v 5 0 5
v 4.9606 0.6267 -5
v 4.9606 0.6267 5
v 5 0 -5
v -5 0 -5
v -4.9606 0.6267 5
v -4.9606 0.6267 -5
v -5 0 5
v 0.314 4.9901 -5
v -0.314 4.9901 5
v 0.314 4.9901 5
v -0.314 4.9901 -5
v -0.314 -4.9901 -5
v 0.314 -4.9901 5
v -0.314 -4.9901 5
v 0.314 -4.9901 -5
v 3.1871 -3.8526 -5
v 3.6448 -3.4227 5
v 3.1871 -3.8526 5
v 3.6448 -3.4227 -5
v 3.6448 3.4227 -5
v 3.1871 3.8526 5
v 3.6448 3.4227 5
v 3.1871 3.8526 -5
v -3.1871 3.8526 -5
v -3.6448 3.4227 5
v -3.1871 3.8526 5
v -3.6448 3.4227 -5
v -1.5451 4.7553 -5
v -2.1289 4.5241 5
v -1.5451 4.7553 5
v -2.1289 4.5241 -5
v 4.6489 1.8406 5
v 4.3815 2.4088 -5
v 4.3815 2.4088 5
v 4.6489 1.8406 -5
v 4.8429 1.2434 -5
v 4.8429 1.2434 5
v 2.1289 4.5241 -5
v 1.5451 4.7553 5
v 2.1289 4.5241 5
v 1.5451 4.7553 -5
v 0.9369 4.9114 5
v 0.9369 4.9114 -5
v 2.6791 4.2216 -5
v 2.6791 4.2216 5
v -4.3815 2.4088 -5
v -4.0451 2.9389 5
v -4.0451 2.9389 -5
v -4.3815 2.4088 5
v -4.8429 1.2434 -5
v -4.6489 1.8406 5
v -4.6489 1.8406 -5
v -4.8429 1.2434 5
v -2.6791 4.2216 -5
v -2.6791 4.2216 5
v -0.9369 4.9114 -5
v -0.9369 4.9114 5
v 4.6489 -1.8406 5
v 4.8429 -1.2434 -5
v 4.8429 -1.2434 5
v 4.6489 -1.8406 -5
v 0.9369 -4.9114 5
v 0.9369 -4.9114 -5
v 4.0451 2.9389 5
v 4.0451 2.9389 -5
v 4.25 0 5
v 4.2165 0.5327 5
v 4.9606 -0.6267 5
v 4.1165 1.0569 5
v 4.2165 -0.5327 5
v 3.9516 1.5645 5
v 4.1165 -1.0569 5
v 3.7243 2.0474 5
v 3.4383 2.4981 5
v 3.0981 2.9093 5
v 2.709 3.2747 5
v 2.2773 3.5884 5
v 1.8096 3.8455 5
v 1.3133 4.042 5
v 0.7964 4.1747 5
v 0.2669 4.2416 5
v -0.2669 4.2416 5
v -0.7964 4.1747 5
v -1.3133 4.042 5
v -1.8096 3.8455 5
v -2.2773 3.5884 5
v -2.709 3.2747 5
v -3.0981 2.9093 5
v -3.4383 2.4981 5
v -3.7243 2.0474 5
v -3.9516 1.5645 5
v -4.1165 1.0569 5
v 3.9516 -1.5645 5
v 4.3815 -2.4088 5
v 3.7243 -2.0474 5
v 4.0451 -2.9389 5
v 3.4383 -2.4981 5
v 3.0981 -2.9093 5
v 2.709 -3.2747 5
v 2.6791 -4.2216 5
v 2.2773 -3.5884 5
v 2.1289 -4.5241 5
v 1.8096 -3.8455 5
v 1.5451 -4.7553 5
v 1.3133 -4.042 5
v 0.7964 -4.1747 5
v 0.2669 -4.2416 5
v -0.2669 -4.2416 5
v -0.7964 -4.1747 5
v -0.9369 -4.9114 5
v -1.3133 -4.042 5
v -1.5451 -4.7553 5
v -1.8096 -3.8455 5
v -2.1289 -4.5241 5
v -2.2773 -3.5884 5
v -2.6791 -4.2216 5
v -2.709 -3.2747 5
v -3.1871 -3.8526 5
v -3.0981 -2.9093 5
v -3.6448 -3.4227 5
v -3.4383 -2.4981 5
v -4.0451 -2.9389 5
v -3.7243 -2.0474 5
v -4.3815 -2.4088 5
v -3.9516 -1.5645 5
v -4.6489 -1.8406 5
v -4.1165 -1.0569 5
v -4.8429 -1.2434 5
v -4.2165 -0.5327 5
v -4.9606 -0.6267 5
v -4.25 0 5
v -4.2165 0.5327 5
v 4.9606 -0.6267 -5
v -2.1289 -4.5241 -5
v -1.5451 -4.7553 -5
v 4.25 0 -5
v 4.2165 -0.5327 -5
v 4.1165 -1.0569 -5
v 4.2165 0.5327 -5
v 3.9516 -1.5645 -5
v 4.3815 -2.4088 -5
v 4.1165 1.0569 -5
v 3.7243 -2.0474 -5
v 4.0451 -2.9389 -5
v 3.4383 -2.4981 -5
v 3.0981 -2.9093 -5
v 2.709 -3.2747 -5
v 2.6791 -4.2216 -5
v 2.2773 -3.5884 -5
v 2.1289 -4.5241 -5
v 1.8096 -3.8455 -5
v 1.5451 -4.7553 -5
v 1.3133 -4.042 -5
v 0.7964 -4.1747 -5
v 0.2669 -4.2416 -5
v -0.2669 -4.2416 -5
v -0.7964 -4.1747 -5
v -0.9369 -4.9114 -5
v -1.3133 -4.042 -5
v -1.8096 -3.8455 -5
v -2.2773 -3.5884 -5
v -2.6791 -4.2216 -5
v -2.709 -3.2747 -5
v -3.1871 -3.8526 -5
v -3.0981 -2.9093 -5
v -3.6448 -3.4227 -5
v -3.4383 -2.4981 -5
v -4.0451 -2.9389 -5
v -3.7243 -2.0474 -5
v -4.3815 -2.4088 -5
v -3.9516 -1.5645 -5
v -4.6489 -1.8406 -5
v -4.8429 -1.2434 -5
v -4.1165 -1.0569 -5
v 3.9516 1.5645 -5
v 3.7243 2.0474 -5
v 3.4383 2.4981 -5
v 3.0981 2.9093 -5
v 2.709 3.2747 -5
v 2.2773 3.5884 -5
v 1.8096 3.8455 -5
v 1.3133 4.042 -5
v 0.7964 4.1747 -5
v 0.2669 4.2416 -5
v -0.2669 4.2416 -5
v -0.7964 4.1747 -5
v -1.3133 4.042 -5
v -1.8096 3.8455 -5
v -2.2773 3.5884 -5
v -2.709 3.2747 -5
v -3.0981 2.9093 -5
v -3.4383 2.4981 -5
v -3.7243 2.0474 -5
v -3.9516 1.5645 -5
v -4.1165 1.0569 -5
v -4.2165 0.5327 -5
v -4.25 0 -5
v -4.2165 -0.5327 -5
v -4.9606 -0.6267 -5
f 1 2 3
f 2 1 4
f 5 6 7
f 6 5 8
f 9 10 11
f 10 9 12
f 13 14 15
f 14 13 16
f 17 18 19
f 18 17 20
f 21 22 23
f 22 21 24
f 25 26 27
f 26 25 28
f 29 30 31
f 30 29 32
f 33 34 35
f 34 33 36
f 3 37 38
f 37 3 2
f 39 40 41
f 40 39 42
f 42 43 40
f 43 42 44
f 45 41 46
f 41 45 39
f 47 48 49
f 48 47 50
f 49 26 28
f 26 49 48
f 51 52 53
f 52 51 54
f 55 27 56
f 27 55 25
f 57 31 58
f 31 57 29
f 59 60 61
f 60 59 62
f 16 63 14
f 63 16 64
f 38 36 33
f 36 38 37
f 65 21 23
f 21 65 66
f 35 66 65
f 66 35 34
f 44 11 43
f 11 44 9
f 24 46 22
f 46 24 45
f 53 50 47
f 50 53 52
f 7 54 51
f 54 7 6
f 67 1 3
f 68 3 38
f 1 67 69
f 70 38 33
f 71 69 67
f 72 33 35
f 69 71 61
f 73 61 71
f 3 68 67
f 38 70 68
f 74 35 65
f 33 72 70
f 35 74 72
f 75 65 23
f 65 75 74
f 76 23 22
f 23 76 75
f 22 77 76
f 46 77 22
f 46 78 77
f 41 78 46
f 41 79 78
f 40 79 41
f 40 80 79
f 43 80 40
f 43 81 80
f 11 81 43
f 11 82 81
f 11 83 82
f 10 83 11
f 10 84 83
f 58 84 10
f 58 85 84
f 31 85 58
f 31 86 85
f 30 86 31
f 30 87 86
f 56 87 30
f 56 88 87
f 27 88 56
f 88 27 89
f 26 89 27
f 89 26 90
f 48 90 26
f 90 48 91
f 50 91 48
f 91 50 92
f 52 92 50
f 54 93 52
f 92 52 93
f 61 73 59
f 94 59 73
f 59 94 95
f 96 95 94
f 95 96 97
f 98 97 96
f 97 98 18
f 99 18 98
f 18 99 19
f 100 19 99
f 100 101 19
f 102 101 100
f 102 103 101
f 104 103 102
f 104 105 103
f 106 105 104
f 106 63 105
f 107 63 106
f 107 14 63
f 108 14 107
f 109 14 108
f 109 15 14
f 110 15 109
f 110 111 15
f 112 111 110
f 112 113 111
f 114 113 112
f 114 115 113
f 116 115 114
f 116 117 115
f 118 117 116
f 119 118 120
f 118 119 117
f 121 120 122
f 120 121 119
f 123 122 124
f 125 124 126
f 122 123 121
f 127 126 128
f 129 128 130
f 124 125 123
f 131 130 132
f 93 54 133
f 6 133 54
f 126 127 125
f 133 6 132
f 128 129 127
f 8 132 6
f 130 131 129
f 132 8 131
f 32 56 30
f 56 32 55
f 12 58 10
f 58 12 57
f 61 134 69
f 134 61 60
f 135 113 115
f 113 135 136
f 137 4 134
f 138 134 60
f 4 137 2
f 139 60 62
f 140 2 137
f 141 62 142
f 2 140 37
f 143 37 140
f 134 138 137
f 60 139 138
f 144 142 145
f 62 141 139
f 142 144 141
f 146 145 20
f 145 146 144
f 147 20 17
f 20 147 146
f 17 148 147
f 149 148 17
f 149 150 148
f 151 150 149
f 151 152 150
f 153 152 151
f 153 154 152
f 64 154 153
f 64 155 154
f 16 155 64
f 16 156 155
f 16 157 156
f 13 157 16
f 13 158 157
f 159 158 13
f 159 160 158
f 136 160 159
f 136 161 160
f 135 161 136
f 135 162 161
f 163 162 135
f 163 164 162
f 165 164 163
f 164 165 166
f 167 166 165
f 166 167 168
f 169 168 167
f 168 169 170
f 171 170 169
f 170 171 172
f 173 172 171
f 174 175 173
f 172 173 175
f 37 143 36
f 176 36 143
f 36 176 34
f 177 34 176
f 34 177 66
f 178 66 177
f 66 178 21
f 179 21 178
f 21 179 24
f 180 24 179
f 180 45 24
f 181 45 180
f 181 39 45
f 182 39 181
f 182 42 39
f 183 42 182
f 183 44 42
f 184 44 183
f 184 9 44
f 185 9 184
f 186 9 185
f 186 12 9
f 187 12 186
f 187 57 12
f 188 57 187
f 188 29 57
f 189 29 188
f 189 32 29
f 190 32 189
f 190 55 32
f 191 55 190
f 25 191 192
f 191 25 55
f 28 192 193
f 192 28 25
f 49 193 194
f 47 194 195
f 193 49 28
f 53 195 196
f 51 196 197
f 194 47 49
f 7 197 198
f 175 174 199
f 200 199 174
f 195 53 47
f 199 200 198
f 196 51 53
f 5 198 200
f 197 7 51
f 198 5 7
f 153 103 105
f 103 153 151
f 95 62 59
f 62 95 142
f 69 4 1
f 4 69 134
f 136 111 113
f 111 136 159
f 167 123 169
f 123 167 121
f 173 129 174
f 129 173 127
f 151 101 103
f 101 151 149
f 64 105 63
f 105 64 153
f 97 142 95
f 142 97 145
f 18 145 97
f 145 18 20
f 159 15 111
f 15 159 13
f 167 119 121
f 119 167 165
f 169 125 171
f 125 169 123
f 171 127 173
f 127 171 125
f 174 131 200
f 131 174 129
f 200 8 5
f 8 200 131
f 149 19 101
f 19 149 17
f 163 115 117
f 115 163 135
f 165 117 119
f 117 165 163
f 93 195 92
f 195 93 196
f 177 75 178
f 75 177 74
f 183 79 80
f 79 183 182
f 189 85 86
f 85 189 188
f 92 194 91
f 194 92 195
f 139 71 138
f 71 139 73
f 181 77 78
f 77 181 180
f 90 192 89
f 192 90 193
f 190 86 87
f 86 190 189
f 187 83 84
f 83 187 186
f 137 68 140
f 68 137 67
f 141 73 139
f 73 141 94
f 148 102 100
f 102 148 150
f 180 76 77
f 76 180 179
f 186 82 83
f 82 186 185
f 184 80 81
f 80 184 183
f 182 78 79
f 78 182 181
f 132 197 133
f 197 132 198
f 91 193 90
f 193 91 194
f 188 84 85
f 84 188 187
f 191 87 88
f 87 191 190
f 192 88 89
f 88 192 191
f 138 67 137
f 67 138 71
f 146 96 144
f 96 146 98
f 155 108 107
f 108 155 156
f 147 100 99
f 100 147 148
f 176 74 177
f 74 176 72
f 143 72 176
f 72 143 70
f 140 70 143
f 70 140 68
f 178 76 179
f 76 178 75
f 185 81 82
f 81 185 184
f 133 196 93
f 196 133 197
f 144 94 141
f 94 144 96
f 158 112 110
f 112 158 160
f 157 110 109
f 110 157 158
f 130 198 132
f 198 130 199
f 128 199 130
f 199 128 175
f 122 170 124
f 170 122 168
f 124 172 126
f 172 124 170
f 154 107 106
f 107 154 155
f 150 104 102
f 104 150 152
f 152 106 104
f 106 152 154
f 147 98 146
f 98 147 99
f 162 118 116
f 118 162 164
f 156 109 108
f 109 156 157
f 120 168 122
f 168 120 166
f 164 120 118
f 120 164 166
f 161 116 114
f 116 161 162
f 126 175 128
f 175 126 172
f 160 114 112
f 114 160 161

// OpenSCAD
$fn = 50;


difference() {
	union() {
		translate(v = [0, 0, -5.0000000000]) {
			cylinder(h = 10, r = 5.0000000000);
		}
	}
	union() {
		translate(v = [0, 0, -100.0000000000]) {
			cylinder(h = 200, r = 4.2500000000);
		}
	}
}
